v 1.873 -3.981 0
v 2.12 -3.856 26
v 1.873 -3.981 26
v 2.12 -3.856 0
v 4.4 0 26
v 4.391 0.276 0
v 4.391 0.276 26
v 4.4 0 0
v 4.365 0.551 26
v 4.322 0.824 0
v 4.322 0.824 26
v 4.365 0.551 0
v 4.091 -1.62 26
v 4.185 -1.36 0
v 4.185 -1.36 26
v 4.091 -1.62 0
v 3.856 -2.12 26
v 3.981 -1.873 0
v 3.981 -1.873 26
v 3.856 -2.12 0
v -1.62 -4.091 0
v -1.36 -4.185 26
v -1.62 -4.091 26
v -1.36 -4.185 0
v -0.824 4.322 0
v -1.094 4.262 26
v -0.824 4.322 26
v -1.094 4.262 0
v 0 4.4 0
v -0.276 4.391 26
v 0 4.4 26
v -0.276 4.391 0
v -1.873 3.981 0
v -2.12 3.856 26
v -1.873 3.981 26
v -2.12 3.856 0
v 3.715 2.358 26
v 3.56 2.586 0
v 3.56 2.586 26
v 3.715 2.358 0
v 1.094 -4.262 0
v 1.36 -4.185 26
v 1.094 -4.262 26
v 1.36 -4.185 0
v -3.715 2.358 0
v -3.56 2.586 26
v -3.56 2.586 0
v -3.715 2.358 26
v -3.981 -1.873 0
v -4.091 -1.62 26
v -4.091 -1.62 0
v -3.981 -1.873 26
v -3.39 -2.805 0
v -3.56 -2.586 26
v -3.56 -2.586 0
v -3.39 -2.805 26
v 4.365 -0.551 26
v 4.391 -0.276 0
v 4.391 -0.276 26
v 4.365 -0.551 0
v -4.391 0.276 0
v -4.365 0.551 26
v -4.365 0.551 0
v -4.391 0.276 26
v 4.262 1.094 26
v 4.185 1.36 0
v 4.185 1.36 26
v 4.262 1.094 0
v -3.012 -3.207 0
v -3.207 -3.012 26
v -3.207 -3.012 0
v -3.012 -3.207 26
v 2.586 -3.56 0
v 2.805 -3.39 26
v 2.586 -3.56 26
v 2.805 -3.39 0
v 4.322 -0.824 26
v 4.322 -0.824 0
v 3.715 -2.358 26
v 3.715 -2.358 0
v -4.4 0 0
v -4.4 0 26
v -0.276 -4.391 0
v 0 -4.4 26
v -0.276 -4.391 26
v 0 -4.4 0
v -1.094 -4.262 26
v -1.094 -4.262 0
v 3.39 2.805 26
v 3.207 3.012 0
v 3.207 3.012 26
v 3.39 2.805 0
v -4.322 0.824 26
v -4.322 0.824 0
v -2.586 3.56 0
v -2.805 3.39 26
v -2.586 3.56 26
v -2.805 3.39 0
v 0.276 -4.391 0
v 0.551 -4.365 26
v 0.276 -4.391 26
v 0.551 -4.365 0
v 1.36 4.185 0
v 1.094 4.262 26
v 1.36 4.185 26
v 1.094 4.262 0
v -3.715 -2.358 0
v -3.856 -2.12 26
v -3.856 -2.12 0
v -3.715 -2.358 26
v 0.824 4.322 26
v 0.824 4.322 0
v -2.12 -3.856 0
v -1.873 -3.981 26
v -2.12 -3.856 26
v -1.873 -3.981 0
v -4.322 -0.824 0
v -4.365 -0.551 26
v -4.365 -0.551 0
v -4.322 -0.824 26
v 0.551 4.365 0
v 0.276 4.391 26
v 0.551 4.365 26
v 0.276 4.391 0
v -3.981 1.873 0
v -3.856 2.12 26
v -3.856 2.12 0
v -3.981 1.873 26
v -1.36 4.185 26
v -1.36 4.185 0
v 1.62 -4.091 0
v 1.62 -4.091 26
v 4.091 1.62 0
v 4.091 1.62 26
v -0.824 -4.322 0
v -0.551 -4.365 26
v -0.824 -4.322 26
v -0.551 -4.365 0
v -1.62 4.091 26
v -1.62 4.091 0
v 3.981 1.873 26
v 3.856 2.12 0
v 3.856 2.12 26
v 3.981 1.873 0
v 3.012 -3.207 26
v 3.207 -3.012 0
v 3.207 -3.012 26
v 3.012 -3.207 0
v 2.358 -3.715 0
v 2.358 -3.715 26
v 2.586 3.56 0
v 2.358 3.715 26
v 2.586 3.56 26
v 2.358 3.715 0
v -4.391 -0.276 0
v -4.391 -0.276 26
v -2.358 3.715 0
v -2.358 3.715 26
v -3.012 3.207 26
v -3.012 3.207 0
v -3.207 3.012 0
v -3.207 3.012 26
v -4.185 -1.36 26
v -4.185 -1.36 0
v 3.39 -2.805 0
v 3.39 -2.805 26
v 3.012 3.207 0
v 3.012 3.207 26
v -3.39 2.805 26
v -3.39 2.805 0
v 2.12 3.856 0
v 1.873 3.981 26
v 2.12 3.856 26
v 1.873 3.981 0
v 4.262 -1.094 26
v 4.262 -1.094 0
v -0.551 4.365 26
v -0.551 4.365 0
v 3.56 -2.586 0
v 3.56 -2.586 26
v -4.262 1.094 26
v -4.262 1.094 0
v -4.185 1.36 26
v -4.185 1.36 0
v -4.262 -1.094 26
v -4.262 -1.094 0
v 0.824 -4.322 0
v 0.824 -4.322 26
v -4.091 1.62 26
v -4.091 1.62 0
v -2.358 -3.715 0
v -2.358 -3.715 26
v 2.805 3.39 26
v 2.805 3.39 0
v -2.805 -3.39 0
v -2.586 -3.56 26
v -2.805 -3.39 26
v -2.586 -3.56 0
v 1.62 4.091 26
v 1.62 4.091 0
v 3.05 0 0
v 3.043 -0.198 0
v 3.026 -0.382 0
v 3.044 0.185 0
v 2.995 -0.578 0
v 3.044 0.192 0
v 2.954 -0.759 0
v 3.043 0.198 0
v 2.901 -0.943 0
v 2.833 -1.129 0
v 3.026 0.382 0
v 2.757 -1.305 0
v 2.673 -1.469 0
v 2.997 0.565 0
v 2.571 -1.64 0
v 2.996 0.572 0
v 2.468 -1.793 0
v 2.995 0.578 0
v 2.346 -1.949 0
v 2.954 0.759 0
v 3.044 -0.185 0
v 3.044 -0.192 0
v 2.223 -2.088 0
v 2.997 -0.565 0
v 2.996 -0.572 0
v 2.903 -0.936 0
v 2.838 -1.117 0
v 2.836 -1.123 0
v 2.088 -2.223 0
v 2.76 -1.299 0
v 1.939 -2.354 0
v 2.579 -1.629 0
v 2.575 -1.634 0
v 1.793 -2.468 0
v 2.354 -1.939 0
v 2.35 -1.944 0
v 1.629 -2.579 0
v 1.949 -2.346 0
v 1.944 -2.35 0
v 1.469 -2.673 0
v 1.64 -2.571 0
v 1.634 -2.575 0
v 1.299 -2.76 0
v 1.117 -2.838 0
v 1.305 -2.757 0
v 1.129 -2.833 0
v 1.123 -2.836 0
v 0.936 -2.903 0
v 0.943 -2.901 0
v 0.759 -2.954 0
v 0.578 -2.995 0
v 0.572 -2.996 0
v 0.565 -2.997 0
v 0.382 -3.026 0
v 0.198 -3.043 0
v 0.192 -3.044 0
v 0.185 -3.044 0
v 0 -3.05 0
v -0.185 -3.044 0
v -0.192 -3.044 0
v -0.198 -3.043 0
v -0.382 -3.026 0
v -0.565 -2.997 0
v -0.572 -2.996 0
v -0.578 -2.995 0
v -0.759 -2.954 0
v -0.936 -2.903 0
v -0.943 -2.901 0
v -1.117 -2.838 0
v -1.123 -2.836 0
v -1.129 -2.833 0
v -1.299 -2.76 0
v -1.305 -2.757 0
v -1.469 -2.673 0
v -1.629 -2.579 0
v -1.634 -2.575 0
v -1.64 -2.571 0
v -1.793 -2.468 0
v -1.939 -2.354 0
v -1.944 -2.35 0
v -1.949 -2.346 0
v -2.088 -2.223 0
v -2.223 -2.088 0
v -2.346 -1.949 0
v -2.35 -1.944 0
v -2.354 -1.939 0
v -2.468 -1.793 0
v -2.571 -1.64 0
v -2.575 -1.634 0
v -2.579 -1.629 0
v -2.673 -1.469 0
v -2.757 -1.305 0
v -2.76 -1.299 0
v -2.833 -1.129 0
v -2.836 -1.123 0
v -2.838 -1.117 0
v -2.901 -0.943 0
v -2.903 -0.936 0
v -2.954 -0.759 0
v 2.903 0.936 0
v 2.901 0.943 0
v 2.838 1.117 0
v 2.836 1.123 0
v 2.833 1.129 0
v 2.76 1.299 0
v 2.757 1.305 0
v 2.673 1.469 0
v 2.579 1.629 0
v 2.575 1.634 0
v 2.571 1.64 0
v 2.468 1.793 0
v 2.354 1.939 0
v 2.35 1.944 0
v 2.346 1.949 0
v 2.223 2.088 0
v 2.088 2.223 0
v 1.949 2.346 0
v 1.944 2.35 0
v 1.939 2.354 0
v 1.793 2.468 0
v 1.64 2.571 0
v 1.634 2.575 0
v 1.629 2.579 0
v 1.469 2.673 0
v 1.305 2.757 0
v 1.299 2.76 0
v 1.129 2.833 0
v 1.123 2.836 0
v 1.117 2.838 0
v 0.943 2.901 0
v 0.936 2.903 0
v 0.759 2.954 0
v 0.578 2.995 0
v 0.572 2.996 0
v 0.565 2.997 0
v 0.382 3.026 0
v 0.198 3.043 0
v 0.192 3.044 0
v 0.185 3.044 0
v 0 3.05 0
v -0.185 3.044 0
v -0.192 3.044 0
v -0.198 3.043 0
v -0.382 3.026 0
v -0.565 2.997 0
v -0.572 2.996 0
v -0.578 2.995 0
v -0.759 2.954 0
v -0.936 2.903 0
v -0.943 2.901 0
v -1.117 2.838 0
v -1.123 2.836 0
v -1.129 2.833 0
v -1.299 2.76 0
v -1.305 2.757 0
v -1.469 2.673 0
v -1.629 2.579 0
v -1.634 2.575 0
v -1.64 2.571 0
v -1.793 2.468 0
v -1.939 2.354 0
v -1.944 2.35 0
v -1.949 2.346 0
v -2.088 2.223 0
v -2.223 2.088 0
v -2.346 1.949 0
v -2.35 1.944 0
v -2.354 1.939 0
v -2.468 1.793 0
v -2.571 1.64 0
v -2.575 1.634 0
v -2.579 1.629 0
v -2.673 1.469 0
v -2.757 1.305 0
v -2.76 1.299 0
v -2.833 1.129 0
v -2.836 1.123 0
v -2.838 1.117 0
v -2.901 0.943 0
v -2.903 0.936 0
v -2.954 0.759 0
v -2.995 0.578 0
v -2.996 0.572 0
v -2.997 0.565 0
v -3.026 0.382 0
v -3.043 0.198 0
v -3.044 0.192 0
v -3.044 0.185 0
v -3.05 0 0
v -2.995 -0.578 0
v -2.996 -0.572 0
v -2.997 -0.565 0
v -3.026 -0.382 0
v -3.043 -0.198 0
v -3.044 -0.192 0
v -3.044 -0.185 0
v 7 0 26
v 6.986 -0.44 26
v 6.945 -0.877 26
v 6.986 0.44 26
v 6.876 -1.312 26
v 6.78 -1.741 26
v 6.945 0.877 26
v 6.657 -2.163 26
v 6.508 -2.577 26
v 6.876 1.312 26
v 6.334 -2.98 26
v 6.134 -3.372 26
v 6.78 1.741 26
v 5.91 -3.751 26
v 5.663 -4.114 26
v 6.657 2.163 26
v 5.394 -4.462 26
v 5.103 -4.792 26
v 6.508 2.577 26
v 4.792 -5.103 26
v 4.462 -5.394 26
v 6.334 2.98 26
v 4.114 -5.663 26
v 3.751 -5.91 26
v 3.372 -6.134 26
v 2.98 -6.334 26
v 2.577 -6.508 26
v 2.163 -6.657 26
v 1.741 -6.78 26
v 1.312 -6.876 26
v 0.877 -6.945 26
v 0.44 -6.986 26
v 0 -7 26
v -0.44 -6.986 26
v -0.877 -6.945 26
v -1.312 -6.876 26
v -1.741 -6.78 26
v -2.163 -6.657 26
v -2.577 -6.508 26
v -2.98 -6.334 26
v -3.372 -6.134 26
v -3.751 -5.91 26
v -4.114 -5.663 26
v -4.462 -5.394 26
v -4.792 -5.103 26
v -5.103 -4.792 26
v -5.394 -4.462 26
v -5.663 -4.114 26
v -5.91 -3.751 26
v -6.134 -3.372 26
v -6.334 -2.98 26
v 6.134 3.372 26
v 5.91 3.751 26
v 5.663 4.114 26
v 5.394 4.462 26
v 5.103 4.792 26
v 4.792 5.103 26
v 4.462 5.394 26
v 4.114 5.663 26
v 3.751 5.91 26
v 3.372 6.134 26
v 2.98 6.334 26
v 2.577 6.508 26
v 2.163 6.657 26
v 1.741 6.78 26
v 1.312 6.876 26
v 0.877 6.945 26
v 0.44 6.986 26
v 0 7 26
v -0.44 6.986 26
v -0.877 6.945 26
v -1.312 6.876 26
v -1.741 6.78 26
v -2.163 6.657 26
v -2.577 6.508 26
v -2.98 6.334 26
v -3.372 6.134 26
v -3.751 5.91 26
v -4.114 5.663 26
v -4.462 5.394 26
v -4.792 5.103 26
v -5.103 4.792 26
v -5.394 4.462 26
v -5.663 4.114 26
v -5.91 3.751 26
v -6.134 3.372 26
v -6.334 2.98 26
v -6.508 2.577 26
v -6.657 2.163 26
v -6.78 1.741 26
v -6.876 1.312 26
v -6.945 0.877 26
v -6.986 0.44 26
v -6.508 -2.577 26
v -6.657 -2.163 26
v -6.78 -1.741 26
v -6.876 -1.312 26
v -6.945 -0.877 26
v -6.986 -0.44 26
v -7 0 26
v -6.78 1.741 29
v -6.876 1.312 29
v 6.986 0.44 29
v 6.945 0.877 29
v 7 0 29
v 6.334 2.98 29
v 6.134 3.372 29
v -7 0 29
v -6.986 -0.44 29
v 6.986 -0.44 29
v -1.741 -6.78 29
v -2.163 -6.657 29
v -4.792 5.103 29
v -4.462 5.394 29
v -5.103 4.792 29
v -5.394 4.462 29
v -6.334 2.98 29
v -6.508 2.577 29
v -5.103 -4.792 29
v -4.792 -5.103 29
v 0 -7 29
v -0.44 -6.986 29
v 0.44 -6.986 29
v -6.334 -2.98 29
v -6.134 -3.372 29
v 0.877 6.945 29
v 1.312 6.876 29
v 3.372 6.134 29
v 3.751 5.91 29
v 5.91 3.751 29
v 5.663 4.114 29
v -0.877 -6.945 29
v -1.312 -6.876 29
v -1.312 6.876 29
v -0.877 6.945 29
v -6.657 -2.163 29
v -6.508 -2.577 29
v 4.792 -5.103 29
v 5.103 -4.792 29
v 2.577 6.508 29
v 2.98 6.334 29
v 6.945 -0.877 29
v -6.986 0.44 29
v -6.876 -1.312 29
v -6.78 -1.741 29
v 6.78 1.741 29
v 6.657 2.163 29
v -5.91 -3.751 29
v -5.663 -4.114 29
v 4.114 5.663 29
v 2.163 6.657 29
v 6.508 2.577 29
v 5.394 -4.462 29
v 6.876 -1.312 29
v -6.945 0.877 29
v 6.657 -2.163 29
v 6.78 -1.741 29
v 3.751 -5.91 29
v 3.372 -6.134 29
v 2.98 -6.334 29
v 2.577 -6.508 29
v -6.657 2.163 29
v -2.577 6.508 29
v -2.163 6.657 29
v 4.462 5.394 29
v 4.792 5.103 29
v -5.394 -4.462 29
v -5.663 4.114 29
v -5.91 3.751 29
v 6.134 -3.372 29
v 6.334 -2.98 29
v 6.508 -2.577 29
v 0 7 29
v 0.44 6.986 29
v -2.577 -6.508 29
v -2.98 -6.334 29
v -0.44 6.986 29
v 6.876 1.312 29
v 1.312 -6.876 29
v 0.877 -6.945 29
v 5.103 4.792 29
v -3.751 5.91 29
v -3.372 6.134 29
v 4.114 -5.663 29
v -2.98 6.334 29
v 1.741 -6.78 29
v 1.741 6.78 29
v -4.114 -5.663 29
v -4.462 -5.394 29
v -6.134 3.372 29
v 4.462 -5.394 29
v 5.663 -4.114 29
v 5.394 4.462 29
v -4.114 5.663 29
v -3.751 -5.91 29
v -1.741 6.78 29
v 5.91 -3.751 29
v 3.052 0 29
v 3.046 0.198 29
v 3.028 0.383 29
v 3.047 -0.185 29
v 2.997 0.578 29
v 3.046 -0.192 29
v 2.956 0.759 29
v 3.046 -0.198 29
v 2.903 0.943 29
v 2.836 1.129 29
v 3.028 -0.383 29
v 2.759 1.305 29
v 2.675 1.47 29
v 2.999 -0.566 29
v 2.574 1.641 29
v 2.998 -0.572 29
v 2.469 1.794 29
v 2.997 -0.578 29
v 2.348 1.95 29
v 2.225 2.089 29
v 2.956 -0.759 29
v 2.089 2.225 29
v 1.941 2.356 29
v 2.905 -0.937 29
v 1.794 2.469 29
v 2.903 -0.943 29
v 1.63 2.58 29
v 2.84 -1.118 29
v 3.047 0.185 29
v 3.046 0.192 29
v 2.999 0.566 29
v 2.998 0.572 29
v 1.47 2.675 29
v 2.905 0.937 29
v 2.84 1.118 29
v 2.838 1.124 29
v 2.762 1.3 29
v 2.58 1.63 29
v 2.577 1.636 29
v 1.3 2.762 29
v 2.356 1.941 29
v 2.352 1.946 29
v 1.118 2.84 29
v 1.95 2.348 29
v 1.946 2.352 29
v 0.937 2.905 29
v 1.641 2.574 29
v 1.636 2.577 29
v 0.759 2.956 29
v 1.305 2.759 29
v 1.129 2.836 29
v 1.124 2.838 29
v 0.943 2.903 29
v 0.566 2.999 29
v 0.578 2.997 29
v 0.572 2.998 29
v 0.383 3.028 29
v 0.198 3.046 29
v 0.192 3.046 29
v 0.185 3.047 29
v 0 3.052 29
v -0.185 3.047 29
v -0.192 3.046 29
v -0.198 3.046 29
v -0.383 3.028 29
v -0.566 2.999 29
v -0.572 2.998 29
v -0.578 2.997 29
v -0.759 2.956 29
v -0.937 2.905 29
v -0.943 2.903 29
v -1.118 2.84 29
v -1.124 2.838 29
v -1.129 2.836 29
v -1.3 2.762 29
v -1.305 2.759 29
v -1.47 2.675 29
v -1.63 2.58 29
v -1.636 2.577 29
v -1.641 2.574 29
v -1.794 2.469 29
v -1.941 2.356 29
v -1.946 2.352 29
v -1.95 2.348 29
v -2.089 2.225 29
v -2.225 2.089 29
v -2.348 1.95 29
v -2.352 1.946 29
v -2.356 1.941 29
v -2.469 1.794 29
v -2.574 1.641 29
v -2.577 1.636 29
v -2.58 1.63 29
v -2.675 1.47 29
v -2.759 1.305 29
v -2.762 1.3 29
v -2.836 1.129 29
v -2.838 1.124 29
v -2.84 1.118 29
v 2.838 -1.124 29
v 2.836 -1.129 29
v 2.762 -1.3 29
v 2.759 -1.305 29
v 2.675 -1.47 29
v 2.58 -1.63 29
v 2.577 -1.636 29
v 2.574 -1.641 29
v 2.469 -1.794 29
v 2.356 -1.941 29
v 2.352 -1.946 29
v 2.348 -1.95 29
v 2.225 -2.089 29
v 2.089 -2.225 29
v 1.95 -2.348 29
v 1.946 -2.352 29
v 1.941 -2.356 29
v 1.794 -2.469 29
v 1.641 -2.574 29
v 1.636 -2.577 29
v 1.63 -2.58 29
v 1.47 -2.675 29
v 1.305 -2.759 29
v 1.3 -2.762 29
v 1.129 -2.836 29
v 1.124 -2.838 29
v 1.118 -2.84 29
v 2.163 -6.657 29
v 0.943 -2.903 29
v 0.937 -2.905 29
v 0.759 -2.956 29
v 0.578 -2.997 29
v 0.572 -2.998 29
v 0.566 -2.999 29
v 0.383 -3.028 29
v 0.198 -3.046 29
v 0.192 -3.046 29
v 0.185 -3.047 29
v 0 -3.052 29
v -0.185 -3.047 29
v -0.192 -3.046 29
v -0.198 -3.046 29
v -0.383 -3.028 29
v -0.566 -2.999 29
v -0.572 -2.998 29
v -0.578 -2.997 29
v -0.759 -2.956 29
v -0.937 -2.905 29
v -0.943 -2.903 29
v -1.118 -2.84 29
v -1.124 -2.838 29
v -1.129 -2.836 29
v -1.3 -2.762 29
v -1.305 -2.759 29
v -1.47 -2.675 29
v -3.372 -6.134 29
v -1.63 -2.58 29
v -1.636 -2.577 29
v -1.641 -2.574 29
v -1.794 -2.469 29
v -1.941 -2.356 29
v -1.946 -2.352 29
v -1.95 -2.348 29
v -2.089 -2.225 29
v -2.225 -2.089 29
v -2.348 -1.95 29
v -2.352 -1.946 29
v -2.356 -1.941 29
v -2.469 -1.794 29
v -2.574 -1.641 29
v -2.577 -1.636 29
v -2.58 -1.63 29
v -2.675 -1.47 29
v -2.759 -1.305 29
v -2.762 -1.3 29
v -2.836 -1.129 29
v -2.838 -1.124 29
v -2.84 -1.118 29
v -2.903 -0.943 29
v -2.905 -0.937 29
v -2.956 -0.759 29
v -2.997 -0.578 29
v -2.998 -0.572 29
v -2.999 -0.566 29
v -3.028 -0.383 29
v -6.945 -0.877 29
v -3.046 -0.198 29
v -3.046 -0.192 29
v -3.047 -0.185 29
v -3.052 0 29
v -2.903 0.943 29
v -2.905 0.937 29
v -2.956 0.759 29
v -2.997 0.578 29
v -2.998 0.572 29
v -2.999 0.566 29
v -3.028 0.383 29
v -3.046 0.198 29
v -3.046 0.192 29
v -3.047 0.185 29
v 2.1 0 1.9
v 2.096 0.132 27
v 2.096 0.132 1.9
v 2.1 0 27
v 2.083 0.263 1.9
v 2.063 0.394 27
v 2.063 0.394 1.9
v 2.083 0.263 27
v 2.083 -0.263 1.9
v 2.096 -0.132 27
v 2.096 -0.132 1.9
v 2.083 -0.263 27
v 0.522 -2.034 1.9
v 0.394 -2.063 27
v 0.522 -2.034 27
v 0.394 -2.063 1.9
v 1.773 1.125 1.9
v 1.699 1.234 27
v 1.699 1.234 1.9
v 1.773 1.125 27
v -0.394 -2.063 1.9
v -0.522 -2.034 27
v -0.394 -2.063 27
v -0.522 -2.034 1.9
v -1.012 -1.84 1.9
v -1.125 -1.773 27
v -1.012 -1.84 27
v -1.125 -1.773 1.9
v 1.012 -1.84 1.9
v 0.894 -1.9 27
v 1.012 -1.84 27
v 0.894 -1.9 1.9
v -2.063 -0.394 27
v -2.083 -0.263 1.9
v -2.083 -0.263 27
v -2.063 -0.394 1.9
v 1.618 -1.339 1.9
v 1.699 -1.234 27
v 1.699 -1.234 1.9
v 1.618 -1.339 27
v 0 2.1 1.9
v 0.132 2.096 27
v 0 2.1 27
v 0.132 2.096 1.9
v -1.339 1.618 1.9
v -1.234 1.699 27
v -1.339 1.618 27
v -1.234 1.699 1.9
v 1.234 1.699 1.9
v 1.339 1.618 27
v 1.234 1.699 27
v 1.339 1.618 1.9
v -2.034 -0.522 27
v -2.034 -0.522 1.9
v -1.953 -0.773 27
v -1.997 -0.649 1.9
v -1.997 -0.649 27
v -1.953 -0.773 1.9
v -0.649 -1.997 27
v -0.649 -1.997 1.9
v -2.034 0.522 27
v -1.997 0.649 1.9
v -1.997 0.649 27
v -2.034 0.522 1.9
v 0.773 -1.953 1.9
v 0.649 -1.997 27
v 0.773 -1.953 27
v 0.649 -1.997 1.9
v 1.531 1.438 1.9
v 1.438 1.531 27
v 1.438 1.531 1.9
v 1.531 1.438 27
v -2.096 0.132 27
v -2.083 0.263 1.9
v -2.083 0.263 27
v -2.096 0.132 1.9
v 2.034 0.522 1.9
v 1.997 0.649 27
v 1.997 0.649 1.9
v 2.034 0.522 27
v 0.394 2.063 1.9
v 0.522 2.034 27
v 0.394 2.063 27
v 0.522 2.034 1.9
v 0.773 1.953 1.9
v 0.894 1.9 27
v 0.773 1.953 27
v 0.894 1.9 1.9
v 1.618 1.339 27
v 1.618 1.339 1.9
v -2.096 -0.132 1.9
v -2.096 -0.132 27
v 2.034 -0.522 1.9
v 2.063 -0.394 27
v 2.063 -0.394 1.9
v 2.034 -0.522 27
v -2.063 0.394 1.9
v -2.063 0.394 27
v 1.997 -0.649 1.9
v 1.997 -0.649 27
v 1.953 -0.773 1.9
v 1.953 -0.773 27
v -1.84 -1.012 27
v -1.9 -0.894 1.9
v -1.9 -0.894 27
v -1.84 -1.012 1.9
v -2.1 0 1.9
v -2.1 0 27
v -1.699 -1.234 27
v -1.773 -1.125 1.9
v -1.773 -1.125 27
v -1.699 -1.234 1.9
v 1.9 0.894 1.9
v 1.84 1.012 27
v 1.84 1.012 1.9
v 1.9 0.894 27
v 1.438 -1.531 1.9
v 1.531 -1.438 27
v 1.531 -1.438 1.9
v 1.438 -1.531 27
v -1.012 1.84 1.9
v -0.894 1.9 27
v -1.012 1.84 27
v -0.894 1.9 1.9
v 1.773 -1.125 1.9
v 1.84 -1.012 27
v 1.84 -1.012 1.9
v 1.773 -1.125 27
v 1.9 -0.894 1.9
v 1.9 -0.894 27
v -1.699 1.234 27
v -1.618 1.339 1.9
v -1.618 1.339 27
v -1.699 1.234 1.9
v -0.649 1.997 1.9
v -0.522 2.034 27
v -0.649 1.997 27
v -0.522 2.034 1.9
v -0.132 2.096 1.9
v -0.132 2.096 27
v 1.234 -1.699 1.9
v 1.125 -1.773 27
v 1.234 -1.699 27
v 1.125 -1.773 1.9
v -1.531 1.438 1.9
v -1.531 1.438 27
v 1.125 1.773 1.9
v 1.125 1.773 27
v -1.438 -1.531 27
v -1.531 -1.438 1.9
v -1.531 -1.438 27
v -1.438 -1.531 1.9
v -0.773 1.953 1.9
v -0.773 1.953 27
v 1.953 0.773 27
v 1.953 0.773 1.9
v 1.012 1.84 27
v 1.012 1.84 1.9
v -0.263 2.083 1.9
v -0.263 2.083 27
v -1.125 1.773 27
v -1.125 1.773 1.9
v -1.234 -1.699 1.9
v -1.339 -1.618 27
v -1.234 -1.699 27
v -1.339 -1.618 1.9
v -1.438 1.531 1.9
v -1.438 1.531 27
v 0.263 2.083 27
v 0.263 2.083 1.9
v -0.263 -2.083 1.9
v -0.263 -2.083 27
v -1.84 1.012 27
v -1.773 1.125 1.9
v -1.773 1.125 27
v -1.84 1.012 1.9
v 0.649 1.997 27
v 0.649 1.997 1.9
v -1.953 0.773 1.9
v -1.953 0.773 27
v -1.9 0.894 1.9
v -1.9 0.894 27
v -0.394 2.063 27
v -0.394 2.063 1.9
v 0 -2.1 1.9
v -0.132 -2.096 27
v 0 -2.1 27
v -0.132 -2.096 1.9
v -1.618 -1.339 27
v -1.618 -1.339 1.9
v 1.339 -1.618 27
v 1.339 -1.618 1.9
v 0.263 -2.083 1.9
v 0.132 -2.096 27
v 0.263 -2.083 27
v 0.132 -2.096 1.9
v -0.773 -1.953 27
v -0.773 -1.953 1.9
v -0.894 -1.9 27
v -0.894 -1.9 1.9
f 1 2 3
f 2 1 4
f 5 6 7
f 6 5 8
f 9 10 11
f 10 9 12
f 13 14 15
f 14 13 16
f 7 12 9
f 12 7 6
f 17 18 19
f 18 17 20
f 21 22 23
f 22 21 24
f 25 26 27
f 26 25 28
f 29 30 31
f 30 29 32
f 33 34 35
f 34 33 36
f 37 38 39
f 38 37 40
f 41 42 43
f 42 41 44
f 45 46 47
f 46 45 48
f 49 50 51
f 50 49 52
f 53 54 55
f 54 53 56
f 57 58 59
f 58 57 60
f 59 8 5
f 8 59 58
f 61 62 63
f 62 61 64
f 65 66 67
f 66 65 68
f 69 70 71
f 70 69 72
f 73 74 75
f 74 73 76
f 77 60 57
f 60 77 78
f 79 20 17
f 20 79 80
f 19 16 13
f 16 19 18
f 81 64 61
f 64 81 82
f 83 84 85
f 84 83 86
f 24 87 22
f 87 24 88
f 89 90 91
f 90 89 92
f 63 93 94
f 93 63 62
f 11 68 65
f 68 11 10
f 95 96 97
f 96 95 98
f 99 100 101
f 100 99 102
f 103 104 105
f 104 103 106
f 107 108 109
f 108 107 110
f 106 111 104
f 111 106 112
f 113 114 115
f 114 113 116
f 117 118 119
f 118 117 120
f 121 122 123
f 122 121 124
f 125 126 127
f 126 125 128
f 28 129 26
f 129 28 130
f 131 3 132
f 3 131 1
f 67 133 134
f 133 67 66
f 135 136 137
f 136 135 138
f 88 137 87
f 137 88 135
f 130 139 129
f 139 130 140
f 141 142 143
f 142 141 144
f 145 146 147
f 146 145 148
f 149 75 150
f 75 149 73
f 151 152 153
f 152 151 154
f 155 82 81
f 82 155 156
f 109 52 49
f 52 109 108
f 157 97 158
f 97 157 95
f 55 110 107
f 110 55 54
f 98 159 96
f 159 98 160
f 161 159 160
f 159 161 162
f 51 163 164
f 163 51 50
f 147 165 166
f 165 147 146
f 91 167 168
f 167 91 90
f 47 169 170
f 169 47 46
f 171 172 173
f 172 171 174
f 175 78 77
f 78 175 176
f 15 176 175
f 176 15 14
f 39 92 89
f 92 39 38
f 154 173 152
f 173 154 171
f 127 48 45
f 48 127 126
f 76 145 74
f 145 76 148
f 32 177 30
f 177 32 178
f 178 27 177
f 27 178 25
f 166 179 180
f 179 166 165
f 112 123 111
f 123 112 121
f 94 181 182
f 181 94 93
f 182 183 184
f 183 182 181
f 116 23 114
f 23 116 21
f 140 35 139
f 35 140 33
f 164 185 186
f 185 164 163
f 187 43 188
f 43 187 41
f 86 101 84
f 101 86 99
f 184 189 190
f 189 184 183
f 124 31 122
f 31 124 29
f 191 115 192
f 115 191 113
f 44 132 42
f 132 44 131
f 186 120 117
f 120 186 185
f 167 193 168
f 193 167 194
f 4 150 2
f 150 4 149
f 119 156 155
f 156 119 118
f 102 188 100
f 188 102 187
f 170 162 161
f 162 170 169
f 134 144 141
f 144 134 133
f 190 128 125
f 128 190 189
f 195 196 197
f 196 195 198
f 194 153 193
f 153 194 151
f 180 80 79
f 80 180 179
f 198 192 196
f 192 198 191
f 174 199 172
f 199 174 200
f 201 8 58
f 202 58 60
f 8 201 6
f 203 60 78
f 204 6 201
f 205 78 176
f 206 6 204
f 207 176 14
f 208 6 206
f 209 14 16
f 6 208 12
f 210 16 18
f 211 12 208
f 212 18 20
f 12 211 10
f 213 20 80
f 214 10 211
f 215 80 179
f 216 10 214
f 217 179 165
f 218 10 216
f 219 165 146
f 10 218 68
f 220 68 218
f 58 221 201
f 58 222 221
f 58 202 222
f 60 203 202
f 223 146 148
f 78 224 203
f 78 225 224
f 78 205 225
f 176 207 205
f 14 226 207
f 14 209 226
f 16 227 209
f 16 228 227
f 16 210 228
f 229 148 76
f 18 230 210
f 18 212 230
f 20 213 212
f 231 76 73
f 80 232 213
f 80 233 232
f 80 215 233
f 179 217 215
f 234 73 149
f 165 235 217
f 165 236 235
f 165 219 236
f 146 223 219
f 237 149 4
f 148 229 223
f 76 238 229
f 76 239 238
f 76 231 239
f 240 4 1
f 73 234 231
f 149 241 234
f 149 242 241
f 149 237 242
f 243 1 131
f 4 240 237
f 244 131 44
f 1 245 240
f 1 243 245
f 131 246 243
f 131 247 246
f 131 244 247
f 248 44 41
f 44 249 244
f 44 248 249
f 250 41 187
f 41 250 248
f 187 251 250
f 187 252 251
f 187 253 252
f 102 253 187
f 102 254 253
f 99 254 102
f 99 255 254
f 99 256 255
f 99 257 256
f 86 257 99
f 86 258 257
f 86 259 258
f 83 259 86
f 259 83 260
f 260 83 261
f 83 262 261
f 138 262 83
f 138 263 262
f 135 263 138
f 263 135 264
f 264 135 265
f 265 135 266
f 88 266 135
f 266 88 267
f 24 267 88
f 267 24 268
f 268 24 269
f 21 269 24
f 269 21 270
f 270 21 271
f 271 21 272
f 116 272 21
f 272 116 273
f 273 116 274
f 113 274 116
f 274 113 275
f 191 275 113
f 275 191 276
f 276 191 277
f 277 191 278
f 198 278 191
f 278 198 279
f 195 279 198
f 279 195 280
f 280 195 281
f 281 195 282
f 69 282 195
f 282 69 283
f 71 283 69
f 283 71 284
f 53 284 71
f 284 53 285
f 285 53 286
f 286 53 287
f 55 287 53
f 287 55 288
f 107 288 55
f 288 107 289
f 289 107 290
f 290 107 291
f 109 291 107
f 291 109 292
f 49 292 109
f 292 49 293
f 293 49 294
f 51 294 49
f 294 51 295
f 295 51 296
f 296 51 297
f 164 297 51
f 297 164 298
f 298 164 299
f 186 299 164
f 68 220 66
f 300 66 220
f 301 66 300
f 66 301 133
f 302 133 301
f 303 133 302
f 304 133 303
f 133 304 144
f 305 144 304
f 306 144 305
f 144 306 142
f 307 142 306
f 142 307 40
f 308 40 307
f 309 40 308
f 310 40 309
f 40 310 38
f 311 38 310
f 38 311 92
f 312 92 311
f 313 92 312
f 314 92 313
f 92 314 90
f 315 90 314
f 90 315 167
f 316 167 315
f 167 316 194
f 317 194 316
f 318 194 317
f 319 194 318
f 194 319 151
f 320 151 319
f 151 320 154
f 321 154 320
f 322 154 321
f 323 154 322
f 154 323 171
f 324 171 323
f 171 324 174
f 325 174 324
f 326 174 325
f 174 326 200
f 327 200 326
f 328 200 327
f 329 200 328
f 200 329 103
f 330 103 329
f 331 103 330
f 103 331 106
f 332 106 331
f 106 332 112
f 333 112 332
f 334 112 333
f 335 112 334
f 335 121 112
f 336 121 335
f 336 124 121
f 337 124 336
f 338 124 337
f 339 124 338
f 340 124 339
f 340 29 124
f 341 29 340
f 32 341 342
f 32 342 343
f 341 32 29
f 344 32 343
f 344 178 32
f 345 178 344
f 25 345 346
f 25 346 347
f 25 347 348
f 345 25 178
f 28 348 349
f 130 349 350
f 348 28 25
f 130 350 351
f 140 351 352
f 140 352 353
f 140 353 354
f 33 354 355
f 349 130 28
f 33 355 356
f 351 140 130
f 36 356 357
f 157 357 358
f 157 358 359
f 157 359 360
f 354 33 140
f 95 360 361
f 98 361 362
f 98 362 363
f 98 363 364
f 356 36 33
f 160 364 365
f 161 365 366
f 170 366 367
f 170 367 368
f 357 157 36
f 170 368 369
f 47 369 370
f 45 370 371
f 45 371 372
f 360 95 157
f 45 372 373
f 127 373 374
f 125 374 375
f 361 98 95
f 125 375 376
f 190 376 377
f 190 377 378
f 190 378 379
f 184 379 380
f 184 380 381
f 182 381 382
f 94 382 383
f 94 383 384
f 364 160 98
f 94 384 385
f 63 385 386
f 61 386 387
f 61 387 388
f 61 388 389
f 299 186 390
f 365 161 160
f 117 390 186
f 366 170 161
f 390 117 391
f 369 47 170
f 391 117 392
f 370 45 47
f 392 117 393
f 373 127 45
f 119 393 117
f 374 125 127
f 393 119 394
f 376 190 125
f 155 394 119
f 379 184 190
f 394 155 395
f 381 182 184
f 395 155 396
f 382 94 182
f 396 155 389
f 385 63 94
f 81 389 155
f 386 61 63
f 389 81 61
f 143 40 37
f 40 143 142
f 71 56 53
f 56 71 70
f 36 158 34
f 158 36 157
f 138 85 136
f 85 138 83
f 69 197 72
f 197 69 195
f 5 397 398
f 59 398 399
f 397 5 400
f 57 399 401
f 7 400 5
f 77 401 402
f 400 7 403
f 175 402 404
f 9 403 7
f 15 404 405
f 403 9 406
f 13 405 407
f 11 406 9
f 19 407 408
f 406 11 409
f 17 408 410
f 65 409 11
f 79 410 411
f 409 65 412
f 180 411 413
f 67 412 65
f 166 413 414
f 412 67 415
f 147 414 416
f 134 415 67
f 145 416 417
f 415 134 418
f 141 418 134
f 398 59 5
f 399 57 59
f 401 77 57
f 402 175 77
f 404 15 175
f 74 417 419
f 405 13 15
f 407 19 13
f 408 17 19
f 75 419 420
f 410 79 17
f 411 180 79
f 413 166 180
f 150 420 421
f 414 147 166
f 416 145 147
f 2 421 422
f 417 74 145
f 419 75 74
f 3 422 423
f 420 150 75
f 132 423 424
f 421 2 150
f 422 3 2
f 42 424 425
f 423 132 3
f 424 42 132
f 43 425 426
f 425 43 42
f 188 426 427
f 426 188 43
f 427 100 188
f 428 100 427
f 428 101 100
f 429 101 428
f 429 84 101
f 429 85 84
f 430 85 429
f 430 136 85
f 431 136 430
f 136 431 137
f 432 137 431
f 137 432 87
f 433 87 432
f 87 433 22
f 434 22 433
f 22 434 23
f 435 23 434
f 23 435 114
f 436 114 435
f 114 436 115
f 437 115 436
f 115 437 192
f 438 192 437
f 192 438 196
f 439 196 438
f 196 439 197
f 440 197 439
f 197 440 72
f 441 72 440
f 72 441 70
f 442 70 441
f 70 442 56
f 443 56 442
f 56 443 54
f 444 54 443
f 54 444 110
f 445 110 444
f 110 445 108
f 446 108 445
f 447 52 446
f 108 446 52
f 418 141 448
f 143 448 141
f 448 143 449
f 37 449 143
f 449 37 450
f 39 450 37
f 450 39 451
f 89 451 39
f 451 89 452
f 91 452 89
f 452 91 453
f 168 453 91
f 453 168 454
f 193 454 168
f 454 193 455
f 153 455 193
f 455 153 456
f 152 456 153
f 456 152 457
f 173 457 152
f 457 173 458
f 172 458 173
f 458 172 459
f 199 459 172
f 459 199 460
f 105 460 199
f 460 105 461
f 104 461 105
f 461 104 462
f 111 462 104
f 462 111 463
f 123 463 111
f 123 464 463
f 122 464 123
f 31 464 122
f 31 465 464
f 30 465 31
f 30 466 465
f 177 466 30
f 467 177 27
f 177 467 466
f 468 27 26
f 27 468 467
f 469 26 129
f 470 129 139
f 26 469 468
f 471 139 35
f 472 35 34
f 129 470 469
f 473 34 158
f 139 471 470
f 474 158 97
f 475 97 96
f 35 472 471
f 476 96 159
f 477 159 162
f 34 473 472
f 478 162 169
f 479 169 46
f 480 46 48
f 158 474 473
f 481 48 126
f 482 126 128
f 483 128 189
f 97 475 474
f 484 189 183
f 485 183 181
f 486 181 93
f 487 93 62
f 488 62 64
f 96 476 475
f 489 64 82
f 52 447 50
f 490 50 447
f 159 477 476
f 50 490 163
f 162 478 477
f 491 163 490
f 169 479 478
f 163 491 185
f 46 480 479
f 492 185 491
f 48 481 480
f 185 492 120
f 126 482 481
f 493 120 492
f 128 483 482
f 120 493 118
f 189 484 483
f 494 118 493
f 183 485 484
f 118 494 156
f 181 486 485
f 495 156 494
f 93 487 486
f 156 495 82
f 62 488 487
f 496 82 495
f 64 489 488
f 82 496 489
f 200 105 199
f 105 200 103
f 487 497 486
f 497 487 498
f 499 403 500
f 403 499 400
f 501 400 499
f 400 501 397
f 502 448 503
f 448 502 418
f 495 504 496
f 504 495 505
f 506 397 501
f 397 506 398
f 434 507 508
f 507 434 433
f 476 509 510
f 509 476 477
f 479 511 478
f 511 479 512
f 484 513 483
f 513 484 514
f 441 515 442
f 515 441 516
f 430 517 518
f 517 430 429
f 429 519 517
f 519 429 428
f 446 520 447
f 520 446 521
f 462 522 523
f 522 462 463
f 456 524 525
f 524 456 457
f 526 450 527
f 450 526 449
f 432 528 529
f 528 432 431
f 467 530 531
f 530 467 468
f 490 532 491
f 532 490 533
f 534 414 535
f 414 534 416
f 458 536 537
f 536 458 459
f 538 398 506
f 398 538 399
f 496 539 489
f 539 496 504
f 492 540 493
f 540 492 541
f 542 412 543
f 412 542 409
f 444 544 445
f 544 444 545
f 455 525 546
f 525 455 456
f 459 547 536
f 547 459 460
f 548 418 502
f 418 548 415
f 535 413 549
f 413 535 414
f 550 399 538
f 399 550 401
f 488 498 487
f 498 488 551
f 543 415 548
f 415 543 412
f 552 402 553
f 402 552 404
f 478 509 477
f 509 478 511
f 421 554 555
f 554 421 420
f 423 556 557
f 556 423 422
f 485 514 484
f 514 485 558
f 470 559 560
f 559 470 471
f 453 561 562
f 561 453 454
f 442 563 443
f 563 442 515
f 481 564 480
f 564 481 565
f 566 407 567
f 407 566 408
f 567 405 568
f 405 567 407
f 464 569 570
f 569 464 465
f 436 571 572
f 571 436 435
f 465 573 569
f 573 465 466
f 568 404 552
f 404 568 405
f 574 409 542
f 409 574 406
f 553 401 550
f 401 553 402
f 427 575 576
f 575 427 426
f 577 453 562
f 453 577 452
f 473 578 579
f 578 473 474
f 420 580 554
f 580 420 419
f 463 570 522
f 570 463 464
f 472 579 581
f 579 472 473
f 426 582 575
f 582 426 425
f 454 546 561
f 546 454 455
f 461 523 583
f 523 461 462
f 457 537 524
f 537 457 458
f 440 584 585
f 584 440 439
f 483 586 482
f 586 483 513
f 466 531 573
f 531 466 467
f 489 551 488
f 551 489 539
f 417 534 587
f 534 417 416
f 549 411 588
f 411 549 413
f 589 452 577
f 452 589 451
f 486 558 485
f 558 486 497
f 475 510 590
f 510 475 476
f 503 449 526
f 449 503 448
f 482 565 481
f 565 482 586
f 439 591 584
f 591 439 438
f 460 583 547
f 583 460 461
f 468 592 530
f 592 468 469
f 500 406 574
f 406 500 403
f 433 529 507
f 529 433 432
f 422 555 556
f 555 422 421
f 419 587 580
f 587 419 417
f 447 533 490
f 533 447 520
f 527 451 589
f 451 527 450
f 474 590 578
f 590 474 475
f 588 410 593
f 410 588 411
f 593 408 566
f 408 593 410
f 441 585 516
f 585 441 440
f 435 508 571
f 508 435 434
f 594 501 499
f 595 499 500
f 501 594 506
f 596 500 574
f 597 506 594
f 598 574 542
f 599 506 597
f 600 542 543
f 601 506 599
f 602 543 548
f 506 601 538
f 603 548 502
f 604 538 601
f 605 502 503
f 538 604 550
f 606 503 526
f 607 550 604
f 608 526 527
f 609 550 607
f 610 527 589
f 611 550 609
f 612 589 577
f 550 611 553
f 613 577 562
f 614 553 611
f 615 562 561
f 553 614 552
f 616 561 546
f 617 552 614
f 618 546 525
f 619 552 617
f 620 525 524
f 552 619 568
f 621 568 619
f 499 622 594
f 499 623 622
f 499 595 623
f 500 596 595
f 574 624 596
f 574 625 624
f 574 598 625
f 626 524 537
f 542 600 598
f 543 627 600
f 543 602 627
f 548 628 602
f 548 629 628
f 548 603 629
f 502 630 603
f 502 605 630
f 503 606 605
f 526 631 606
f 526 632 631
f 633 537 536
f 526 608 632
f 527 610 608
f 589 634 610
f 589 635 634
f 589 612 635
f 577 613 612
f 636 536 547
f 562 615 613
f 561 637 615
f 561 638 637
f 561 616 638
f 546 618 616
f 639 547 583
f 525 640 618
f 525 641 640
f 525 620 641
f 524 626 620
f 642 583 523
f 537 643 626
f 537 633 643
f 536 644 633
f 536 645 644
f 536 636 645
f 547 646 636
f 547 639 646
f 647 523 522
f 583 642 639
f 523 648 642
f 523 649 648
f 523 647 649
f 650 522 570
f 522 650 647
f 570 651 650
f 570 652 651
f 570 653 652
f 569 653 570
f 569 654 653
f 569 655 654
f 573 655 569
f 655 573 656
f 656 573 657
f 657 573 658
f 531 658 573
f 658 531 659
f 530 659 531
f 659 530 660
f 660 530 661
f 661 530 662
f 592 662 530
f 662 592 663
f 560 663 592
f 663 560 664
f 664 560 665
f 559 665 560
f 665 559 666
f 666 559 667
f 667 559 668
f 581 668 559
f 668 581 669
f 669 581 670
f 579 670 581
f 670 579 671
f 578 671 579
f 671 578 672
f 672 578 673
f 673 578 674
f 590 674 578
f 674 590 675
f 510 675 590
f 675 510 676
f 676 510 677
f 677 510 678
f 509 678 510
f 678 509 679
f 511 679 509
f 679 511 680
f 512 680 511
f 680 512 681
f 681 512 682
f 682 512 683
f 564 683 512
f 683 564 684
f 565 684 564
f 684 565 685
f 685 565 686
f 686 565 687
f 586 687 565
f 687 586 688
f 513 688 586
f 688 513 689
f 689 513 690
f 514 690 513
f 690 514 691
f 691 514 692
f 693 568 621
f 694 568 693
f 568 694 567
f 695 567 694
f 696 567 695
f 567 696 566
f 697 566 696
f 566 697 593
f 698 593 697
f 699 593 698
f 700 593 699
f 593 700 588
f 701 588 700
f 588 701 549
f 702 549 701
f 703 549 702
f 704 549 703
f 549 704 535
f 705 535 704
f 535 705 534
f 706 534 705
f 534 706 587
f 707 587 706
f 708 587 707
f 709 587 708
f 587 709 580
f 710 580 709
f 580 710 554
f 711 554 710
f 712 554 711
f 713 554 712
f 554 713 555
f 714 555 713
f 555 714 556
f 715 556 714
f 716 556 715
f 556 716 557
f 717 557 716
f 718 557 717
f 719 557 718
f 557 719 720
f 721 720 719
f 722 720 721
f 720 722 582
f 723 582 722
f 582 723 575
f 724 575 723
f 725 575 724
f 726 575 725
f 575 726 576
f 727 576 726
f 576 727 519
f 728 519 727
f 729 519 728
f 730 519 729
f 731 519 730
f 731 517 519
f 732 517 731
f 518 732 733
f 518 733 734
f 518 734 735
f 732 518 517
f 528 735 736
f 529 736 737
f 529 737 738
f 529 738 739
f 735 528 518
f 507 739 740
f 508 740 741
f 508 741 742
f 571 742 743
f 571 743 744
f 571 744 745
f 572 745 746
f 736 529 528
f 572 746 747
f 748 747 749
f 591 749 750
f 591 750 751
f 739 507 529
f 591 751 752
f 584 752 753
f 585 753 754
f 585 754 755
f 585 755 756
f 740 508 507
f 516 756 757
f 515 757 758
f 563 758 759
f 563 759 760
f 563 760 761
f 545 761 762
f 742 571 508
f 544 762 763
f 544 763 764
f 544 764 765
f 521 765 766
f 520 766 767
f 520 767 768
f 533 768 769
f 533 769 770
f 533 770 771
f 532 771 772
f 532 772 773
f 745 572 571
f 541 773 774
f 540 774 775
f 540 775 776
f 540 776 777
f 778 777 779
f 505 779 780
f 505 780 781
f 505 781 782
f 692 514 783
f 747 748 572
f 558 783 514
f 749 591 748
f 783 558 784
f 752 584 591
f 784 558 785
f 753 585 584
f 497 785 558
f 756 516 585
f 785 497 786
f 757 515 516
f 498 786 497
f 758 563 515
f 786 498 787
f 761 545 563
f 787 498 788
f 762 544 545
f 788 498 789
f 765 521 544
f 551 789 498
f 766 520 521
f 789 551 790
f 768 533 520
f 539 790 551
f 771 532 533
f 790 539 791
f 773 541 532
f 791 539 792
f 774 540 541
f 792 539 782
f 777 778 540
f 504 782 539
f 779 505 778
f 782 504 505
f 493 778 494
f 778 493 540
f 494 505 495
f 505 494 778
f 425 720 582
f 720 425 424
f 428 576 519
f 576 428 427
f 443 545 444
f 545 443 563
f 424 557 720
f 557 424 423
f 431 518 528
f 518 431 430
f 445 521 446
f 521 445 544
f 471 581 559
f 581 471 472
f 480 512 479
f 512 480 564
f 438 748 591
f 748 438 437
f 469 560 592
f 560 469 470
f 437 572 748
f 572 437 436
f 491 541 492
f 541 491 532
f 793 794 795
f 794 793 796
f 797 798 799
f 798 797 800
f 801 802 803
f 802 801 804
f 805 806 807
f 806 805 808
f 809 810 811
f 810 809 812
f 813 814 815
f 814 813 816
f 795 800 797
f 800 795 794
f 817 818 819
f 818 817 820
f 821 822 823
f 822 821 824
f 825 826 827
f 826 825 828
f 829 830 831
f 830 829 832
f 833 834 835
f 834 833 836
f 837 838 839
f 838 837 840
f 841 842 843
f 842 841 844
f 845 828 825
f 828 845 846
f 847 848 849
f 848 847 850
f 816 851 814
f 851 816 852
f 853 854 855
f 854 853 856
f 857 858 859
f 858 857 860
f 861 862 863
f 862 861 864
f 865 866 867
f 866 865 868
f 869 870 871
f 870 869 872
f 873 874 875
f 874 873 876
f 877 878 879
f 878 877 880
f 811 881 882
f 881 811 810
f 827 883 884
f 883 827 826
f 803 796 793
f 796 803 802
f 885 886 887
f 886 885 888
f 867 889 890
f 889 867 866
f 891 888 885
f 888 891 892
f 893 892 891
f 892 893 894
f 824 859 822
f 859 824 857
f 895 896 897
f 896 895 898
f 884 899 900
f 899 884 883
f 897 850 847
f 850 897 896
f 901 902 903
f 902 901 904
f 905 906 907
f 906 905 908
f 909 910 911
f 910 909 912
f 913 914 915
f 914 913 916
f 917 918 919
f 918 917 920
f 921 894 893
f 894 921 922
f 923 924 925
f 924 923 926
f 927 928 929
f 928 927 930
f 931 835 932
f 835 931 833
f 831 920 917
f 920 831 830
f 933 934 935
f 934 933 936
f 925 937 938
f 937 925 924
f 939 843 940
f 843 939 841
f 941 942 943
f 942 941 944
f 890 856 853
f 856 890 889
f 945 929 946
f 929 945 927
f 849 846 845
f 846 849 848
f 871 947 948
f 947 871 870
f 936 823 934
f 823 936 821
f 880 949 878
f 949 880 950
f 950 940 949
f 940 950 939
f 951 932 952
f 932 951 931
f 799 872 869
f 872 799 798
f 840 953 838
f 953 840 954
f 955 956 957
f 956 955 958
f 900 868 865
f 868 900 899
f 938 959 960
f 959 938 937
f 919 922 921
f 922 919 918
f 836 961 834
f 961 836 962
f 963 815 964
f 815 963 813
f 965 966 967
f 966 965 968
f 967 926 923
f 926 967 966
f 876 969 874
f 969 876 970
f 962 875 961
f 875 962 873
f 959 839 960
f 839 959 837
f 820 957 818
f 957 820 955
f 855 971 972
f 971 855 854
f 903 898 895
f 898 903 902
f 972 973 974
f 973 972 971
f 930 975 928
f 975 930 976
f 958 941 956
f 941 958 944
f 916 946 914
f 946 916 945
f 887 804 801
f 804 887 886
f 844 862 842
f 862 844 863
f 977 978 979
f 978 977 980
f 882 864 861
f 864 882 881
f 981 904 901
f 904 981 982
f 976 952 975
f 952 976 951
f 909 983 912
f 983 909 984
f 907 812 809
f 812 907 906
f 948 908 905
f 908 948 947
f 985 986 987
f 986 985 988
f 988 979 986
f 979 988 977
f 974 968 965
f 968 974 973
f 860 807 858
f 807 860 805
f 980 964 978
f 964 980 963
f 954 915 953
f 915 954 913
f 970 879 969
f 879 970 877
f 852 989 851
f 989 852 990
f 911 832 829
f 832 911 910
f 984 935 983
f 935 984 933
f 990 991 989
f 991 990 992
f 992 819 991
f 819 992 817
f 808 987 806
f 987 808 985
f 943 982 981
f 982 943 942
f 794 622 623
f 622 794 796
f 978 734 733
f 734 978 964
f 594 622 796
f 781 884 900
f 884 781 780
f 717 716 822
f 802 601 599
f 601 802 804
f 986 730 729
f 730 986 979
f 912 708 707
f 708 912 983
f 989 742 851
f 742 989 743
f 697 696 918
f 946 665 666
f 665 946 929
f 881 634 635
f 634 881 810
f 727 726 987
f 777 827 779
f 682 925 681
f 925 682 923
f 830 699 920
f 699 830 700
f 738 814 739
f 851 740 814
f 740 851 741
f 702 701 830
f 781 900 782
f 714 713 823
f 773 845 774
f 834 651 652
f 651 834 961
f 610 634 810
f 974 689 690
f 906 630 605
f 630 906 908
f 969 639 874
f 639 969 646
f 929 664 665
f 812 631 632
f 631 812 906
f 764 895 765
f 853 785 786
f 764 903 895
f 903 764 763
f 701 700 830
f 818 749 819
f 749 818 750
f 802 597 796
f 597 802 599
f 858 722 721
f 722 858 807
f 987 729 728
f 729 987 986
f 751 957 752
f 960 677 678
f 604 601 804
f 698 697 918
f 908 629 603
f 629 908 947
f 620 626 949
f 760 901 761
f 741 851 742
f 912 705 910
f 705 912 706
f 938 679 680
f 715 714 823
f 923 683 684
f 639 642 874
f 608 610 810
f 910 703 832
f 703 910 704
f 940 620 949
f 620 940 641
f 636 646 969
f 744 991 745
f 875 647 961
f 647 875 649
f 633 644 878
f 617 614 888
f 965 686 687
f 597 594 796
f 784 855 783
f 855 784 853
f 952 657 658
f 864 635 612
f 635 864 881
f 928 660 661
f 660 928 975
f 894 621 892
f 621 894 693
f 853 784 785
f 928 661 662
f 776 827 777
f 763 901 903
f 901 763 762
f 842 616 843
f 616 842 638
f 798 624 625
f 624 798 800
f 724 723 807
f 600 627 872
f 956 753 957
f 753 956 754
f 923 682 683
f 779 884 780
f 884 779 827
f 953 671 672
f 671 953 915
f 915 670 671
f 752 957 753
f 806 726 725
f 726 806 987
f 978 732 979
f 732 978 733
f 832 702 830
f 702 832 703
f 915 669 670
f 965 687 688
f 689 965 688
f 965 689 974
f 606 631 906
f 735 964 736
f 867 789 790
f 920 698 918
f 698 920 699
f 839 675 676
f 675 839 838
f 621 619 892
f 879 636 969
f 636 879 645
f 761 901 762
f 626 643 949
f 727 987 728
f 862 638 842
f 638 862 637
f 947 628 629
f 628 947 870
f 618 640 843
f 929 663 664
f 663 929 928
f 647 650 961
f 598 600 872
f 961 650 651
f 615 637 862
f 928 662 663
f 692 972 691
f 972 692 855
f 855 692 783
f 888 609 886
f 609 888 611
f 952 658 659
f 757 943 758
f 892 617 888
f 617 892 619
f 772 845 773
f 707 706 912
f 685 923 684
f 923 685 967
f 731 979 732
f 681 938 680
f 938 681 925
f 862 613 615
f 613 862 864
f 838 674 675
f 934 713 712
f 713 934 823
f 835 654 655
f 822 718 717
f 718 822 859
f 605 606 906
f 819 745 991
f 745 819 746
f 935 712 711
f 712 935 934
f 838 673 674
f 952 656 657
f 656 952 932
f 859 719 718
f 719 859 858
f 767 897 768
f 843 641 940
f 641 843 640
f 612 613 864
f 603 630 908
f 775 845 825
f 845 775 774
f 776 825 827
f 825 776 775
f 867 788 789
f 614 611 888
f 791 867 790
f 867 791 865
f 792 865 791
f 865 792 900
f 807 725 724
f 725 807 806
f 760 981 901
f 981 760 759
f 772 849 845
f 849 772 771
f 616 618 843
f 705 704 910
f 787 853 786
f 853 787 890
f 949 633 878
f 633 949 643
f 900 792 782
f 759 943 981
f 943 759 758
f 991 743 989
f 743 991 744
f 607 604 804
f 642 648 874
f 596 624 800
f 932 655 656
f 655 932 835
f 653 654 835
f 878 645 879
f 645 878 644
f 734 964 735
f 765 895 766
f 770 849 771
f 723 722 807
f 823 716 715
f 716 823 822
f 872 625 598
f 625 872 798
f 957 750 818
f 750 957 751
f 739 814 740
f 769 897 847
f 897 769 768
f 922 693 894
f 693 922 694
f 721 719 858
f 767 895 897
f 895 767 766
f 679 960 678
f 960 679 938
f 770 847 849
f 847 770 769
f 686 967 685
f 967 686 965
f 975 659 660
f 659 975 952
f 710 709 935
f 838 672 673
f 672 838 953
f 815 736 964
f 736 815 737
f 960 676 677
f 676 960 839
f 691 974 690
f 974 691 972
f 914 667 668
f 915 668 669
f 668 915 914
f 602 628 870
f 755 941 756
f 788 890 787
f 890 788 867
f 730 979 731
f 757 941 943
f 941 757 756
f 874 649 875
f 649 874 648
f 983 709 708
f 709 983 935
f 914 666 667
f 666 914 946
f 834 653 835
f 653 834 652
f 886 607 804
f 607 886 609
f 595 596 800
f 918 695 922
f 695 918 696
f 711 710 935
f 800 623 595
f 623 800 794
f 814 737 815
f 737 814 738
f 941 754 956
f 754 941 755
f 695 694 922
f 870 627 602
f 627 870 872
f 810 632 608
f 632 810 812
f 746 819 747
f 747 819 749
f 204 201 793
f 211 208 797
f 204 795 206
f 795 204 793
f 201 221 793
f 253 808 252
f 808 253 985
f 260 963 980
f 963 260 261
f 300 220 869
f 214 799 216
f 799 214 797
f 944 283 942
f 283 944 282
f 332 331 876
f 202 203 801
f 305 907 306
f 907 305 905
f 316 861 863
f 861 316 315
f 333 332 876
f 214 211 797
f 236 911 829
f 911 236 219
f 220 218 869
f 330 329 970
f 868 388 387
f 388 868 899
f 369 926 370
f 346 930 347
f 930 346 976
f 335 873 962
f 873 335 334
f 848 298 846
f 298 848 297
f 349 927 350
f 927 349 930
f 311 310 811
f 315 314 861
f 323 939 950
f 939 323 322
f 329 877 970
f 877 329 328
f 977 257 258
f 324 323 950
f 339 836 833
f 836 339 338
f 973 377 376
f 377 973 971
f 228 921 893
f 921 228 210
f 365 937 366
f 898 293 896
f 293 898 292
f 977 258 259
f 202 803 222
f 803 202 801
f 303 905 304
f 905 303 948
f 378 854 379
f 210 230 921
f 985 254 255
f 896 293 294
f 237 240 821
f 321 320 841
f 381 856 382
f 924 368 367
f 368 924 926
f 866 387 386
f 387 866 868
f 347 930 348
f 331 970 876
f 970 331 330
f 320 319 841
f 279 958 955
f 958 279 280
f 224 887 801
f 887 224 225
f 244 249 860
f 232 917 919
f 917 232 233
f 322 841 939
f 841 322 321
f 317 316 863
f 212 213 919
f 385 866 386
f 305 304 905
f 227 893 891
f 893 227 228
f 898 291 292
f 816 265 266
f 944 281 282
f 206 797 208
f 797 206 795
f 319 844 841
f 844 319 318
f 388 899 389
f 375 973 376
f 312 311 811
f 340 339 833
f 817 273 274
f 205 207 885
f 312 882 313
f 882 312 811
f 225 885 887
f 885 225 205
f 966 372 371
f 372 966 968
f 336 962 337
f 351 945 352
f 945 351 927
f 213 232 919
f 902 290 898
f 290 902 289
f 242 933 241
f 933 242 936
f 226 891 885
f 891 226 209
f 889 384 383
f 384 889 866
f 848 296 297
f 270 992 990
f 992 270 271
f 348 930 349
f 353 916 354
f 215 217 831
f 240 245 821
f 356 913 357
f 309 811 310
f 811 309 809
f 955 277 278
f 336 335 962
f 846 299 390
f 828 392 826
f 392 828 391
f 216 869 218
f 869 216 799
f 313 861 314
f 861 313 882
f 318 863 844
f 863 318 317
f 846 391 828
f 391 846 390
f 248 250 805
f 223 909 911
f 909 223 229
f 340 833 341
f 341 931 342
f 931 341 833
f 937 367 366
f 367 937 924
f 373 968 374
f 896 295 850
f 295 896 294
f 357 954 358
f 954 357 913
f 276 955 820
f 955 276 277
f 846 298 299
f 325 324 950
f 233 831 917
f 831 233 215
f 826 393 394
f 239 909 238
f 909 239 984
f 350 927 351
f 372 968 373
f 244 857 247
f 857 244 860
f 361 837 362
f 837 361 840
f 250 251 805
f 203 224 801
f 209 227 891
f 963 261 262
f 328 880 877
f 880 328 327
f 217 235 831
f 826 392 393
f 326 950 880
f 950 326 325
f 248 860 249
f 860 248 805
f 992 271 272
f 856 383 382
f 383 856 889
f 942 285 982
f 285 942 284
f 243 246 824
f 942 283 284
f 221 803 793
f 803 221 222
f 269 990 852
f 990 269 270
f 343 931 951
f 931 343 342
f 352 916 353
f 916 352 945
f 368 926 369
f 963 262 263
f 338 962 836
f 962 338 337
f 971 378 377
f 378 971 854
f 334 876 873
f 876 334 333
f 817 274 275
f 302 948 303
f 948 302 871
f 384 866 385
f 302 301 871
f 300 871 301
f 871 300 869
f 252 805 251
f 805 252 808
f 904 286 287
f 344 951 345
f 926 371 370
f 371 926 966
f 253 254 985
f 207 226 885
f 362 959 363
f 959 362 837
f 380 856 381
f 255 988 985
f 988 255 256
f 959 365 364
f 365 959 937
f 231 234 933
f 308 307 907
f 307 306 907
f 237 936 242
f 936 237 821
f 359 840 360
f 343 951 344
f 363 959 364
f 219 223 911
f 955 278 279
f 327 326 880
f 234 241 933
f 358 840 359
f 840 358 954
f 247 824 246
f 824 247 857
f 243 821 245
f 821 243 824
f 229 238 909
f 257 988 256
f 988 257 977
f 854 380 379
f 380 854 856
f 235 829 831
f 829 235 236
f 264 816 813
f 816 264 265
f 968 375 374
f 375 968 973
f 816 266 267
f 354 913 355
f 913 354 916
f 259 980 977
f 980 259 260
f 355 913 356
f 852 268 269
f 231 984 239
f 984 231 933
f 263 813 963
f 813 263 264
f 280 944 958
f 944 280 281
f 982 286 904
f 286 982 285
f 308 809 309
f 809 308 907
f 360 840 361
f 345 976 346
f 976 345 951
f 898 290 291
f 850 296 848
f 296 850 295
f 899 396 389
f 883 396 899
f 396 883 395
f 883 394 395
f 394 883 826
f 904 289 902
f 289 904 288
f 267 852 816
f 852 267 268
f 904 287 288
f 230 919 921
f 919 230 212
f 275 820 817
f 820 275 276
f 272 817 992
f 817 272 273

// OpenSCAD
// PTFE tube through hole

outer_d = 9.0/2 - 0.1;
inner_d = 4.0/2 + 0.1;
length = 26.0;
flange_outer_d = 14.0/2;
$fn = 100;

difference() {
    union() {
        cylinder(h = length, r = outer_d, center = false);
        translate([0, 0, length]) cylinder(h = 3, r = flange_outer_d, center = false);
    }
    translate([0, 0, -2]) cylinder(h = 2*length, r = inner_d, center = false);
    translate([0, 0, length + 3 - 2]) cylinder(h = 2 + 0.1, r1 = inner_d, r2 = inner_d + 1);
    translate([0, 0, -0.1]) cylinder(h = 2, r1 = inner_d + 1, r2 = inner_d);
}
